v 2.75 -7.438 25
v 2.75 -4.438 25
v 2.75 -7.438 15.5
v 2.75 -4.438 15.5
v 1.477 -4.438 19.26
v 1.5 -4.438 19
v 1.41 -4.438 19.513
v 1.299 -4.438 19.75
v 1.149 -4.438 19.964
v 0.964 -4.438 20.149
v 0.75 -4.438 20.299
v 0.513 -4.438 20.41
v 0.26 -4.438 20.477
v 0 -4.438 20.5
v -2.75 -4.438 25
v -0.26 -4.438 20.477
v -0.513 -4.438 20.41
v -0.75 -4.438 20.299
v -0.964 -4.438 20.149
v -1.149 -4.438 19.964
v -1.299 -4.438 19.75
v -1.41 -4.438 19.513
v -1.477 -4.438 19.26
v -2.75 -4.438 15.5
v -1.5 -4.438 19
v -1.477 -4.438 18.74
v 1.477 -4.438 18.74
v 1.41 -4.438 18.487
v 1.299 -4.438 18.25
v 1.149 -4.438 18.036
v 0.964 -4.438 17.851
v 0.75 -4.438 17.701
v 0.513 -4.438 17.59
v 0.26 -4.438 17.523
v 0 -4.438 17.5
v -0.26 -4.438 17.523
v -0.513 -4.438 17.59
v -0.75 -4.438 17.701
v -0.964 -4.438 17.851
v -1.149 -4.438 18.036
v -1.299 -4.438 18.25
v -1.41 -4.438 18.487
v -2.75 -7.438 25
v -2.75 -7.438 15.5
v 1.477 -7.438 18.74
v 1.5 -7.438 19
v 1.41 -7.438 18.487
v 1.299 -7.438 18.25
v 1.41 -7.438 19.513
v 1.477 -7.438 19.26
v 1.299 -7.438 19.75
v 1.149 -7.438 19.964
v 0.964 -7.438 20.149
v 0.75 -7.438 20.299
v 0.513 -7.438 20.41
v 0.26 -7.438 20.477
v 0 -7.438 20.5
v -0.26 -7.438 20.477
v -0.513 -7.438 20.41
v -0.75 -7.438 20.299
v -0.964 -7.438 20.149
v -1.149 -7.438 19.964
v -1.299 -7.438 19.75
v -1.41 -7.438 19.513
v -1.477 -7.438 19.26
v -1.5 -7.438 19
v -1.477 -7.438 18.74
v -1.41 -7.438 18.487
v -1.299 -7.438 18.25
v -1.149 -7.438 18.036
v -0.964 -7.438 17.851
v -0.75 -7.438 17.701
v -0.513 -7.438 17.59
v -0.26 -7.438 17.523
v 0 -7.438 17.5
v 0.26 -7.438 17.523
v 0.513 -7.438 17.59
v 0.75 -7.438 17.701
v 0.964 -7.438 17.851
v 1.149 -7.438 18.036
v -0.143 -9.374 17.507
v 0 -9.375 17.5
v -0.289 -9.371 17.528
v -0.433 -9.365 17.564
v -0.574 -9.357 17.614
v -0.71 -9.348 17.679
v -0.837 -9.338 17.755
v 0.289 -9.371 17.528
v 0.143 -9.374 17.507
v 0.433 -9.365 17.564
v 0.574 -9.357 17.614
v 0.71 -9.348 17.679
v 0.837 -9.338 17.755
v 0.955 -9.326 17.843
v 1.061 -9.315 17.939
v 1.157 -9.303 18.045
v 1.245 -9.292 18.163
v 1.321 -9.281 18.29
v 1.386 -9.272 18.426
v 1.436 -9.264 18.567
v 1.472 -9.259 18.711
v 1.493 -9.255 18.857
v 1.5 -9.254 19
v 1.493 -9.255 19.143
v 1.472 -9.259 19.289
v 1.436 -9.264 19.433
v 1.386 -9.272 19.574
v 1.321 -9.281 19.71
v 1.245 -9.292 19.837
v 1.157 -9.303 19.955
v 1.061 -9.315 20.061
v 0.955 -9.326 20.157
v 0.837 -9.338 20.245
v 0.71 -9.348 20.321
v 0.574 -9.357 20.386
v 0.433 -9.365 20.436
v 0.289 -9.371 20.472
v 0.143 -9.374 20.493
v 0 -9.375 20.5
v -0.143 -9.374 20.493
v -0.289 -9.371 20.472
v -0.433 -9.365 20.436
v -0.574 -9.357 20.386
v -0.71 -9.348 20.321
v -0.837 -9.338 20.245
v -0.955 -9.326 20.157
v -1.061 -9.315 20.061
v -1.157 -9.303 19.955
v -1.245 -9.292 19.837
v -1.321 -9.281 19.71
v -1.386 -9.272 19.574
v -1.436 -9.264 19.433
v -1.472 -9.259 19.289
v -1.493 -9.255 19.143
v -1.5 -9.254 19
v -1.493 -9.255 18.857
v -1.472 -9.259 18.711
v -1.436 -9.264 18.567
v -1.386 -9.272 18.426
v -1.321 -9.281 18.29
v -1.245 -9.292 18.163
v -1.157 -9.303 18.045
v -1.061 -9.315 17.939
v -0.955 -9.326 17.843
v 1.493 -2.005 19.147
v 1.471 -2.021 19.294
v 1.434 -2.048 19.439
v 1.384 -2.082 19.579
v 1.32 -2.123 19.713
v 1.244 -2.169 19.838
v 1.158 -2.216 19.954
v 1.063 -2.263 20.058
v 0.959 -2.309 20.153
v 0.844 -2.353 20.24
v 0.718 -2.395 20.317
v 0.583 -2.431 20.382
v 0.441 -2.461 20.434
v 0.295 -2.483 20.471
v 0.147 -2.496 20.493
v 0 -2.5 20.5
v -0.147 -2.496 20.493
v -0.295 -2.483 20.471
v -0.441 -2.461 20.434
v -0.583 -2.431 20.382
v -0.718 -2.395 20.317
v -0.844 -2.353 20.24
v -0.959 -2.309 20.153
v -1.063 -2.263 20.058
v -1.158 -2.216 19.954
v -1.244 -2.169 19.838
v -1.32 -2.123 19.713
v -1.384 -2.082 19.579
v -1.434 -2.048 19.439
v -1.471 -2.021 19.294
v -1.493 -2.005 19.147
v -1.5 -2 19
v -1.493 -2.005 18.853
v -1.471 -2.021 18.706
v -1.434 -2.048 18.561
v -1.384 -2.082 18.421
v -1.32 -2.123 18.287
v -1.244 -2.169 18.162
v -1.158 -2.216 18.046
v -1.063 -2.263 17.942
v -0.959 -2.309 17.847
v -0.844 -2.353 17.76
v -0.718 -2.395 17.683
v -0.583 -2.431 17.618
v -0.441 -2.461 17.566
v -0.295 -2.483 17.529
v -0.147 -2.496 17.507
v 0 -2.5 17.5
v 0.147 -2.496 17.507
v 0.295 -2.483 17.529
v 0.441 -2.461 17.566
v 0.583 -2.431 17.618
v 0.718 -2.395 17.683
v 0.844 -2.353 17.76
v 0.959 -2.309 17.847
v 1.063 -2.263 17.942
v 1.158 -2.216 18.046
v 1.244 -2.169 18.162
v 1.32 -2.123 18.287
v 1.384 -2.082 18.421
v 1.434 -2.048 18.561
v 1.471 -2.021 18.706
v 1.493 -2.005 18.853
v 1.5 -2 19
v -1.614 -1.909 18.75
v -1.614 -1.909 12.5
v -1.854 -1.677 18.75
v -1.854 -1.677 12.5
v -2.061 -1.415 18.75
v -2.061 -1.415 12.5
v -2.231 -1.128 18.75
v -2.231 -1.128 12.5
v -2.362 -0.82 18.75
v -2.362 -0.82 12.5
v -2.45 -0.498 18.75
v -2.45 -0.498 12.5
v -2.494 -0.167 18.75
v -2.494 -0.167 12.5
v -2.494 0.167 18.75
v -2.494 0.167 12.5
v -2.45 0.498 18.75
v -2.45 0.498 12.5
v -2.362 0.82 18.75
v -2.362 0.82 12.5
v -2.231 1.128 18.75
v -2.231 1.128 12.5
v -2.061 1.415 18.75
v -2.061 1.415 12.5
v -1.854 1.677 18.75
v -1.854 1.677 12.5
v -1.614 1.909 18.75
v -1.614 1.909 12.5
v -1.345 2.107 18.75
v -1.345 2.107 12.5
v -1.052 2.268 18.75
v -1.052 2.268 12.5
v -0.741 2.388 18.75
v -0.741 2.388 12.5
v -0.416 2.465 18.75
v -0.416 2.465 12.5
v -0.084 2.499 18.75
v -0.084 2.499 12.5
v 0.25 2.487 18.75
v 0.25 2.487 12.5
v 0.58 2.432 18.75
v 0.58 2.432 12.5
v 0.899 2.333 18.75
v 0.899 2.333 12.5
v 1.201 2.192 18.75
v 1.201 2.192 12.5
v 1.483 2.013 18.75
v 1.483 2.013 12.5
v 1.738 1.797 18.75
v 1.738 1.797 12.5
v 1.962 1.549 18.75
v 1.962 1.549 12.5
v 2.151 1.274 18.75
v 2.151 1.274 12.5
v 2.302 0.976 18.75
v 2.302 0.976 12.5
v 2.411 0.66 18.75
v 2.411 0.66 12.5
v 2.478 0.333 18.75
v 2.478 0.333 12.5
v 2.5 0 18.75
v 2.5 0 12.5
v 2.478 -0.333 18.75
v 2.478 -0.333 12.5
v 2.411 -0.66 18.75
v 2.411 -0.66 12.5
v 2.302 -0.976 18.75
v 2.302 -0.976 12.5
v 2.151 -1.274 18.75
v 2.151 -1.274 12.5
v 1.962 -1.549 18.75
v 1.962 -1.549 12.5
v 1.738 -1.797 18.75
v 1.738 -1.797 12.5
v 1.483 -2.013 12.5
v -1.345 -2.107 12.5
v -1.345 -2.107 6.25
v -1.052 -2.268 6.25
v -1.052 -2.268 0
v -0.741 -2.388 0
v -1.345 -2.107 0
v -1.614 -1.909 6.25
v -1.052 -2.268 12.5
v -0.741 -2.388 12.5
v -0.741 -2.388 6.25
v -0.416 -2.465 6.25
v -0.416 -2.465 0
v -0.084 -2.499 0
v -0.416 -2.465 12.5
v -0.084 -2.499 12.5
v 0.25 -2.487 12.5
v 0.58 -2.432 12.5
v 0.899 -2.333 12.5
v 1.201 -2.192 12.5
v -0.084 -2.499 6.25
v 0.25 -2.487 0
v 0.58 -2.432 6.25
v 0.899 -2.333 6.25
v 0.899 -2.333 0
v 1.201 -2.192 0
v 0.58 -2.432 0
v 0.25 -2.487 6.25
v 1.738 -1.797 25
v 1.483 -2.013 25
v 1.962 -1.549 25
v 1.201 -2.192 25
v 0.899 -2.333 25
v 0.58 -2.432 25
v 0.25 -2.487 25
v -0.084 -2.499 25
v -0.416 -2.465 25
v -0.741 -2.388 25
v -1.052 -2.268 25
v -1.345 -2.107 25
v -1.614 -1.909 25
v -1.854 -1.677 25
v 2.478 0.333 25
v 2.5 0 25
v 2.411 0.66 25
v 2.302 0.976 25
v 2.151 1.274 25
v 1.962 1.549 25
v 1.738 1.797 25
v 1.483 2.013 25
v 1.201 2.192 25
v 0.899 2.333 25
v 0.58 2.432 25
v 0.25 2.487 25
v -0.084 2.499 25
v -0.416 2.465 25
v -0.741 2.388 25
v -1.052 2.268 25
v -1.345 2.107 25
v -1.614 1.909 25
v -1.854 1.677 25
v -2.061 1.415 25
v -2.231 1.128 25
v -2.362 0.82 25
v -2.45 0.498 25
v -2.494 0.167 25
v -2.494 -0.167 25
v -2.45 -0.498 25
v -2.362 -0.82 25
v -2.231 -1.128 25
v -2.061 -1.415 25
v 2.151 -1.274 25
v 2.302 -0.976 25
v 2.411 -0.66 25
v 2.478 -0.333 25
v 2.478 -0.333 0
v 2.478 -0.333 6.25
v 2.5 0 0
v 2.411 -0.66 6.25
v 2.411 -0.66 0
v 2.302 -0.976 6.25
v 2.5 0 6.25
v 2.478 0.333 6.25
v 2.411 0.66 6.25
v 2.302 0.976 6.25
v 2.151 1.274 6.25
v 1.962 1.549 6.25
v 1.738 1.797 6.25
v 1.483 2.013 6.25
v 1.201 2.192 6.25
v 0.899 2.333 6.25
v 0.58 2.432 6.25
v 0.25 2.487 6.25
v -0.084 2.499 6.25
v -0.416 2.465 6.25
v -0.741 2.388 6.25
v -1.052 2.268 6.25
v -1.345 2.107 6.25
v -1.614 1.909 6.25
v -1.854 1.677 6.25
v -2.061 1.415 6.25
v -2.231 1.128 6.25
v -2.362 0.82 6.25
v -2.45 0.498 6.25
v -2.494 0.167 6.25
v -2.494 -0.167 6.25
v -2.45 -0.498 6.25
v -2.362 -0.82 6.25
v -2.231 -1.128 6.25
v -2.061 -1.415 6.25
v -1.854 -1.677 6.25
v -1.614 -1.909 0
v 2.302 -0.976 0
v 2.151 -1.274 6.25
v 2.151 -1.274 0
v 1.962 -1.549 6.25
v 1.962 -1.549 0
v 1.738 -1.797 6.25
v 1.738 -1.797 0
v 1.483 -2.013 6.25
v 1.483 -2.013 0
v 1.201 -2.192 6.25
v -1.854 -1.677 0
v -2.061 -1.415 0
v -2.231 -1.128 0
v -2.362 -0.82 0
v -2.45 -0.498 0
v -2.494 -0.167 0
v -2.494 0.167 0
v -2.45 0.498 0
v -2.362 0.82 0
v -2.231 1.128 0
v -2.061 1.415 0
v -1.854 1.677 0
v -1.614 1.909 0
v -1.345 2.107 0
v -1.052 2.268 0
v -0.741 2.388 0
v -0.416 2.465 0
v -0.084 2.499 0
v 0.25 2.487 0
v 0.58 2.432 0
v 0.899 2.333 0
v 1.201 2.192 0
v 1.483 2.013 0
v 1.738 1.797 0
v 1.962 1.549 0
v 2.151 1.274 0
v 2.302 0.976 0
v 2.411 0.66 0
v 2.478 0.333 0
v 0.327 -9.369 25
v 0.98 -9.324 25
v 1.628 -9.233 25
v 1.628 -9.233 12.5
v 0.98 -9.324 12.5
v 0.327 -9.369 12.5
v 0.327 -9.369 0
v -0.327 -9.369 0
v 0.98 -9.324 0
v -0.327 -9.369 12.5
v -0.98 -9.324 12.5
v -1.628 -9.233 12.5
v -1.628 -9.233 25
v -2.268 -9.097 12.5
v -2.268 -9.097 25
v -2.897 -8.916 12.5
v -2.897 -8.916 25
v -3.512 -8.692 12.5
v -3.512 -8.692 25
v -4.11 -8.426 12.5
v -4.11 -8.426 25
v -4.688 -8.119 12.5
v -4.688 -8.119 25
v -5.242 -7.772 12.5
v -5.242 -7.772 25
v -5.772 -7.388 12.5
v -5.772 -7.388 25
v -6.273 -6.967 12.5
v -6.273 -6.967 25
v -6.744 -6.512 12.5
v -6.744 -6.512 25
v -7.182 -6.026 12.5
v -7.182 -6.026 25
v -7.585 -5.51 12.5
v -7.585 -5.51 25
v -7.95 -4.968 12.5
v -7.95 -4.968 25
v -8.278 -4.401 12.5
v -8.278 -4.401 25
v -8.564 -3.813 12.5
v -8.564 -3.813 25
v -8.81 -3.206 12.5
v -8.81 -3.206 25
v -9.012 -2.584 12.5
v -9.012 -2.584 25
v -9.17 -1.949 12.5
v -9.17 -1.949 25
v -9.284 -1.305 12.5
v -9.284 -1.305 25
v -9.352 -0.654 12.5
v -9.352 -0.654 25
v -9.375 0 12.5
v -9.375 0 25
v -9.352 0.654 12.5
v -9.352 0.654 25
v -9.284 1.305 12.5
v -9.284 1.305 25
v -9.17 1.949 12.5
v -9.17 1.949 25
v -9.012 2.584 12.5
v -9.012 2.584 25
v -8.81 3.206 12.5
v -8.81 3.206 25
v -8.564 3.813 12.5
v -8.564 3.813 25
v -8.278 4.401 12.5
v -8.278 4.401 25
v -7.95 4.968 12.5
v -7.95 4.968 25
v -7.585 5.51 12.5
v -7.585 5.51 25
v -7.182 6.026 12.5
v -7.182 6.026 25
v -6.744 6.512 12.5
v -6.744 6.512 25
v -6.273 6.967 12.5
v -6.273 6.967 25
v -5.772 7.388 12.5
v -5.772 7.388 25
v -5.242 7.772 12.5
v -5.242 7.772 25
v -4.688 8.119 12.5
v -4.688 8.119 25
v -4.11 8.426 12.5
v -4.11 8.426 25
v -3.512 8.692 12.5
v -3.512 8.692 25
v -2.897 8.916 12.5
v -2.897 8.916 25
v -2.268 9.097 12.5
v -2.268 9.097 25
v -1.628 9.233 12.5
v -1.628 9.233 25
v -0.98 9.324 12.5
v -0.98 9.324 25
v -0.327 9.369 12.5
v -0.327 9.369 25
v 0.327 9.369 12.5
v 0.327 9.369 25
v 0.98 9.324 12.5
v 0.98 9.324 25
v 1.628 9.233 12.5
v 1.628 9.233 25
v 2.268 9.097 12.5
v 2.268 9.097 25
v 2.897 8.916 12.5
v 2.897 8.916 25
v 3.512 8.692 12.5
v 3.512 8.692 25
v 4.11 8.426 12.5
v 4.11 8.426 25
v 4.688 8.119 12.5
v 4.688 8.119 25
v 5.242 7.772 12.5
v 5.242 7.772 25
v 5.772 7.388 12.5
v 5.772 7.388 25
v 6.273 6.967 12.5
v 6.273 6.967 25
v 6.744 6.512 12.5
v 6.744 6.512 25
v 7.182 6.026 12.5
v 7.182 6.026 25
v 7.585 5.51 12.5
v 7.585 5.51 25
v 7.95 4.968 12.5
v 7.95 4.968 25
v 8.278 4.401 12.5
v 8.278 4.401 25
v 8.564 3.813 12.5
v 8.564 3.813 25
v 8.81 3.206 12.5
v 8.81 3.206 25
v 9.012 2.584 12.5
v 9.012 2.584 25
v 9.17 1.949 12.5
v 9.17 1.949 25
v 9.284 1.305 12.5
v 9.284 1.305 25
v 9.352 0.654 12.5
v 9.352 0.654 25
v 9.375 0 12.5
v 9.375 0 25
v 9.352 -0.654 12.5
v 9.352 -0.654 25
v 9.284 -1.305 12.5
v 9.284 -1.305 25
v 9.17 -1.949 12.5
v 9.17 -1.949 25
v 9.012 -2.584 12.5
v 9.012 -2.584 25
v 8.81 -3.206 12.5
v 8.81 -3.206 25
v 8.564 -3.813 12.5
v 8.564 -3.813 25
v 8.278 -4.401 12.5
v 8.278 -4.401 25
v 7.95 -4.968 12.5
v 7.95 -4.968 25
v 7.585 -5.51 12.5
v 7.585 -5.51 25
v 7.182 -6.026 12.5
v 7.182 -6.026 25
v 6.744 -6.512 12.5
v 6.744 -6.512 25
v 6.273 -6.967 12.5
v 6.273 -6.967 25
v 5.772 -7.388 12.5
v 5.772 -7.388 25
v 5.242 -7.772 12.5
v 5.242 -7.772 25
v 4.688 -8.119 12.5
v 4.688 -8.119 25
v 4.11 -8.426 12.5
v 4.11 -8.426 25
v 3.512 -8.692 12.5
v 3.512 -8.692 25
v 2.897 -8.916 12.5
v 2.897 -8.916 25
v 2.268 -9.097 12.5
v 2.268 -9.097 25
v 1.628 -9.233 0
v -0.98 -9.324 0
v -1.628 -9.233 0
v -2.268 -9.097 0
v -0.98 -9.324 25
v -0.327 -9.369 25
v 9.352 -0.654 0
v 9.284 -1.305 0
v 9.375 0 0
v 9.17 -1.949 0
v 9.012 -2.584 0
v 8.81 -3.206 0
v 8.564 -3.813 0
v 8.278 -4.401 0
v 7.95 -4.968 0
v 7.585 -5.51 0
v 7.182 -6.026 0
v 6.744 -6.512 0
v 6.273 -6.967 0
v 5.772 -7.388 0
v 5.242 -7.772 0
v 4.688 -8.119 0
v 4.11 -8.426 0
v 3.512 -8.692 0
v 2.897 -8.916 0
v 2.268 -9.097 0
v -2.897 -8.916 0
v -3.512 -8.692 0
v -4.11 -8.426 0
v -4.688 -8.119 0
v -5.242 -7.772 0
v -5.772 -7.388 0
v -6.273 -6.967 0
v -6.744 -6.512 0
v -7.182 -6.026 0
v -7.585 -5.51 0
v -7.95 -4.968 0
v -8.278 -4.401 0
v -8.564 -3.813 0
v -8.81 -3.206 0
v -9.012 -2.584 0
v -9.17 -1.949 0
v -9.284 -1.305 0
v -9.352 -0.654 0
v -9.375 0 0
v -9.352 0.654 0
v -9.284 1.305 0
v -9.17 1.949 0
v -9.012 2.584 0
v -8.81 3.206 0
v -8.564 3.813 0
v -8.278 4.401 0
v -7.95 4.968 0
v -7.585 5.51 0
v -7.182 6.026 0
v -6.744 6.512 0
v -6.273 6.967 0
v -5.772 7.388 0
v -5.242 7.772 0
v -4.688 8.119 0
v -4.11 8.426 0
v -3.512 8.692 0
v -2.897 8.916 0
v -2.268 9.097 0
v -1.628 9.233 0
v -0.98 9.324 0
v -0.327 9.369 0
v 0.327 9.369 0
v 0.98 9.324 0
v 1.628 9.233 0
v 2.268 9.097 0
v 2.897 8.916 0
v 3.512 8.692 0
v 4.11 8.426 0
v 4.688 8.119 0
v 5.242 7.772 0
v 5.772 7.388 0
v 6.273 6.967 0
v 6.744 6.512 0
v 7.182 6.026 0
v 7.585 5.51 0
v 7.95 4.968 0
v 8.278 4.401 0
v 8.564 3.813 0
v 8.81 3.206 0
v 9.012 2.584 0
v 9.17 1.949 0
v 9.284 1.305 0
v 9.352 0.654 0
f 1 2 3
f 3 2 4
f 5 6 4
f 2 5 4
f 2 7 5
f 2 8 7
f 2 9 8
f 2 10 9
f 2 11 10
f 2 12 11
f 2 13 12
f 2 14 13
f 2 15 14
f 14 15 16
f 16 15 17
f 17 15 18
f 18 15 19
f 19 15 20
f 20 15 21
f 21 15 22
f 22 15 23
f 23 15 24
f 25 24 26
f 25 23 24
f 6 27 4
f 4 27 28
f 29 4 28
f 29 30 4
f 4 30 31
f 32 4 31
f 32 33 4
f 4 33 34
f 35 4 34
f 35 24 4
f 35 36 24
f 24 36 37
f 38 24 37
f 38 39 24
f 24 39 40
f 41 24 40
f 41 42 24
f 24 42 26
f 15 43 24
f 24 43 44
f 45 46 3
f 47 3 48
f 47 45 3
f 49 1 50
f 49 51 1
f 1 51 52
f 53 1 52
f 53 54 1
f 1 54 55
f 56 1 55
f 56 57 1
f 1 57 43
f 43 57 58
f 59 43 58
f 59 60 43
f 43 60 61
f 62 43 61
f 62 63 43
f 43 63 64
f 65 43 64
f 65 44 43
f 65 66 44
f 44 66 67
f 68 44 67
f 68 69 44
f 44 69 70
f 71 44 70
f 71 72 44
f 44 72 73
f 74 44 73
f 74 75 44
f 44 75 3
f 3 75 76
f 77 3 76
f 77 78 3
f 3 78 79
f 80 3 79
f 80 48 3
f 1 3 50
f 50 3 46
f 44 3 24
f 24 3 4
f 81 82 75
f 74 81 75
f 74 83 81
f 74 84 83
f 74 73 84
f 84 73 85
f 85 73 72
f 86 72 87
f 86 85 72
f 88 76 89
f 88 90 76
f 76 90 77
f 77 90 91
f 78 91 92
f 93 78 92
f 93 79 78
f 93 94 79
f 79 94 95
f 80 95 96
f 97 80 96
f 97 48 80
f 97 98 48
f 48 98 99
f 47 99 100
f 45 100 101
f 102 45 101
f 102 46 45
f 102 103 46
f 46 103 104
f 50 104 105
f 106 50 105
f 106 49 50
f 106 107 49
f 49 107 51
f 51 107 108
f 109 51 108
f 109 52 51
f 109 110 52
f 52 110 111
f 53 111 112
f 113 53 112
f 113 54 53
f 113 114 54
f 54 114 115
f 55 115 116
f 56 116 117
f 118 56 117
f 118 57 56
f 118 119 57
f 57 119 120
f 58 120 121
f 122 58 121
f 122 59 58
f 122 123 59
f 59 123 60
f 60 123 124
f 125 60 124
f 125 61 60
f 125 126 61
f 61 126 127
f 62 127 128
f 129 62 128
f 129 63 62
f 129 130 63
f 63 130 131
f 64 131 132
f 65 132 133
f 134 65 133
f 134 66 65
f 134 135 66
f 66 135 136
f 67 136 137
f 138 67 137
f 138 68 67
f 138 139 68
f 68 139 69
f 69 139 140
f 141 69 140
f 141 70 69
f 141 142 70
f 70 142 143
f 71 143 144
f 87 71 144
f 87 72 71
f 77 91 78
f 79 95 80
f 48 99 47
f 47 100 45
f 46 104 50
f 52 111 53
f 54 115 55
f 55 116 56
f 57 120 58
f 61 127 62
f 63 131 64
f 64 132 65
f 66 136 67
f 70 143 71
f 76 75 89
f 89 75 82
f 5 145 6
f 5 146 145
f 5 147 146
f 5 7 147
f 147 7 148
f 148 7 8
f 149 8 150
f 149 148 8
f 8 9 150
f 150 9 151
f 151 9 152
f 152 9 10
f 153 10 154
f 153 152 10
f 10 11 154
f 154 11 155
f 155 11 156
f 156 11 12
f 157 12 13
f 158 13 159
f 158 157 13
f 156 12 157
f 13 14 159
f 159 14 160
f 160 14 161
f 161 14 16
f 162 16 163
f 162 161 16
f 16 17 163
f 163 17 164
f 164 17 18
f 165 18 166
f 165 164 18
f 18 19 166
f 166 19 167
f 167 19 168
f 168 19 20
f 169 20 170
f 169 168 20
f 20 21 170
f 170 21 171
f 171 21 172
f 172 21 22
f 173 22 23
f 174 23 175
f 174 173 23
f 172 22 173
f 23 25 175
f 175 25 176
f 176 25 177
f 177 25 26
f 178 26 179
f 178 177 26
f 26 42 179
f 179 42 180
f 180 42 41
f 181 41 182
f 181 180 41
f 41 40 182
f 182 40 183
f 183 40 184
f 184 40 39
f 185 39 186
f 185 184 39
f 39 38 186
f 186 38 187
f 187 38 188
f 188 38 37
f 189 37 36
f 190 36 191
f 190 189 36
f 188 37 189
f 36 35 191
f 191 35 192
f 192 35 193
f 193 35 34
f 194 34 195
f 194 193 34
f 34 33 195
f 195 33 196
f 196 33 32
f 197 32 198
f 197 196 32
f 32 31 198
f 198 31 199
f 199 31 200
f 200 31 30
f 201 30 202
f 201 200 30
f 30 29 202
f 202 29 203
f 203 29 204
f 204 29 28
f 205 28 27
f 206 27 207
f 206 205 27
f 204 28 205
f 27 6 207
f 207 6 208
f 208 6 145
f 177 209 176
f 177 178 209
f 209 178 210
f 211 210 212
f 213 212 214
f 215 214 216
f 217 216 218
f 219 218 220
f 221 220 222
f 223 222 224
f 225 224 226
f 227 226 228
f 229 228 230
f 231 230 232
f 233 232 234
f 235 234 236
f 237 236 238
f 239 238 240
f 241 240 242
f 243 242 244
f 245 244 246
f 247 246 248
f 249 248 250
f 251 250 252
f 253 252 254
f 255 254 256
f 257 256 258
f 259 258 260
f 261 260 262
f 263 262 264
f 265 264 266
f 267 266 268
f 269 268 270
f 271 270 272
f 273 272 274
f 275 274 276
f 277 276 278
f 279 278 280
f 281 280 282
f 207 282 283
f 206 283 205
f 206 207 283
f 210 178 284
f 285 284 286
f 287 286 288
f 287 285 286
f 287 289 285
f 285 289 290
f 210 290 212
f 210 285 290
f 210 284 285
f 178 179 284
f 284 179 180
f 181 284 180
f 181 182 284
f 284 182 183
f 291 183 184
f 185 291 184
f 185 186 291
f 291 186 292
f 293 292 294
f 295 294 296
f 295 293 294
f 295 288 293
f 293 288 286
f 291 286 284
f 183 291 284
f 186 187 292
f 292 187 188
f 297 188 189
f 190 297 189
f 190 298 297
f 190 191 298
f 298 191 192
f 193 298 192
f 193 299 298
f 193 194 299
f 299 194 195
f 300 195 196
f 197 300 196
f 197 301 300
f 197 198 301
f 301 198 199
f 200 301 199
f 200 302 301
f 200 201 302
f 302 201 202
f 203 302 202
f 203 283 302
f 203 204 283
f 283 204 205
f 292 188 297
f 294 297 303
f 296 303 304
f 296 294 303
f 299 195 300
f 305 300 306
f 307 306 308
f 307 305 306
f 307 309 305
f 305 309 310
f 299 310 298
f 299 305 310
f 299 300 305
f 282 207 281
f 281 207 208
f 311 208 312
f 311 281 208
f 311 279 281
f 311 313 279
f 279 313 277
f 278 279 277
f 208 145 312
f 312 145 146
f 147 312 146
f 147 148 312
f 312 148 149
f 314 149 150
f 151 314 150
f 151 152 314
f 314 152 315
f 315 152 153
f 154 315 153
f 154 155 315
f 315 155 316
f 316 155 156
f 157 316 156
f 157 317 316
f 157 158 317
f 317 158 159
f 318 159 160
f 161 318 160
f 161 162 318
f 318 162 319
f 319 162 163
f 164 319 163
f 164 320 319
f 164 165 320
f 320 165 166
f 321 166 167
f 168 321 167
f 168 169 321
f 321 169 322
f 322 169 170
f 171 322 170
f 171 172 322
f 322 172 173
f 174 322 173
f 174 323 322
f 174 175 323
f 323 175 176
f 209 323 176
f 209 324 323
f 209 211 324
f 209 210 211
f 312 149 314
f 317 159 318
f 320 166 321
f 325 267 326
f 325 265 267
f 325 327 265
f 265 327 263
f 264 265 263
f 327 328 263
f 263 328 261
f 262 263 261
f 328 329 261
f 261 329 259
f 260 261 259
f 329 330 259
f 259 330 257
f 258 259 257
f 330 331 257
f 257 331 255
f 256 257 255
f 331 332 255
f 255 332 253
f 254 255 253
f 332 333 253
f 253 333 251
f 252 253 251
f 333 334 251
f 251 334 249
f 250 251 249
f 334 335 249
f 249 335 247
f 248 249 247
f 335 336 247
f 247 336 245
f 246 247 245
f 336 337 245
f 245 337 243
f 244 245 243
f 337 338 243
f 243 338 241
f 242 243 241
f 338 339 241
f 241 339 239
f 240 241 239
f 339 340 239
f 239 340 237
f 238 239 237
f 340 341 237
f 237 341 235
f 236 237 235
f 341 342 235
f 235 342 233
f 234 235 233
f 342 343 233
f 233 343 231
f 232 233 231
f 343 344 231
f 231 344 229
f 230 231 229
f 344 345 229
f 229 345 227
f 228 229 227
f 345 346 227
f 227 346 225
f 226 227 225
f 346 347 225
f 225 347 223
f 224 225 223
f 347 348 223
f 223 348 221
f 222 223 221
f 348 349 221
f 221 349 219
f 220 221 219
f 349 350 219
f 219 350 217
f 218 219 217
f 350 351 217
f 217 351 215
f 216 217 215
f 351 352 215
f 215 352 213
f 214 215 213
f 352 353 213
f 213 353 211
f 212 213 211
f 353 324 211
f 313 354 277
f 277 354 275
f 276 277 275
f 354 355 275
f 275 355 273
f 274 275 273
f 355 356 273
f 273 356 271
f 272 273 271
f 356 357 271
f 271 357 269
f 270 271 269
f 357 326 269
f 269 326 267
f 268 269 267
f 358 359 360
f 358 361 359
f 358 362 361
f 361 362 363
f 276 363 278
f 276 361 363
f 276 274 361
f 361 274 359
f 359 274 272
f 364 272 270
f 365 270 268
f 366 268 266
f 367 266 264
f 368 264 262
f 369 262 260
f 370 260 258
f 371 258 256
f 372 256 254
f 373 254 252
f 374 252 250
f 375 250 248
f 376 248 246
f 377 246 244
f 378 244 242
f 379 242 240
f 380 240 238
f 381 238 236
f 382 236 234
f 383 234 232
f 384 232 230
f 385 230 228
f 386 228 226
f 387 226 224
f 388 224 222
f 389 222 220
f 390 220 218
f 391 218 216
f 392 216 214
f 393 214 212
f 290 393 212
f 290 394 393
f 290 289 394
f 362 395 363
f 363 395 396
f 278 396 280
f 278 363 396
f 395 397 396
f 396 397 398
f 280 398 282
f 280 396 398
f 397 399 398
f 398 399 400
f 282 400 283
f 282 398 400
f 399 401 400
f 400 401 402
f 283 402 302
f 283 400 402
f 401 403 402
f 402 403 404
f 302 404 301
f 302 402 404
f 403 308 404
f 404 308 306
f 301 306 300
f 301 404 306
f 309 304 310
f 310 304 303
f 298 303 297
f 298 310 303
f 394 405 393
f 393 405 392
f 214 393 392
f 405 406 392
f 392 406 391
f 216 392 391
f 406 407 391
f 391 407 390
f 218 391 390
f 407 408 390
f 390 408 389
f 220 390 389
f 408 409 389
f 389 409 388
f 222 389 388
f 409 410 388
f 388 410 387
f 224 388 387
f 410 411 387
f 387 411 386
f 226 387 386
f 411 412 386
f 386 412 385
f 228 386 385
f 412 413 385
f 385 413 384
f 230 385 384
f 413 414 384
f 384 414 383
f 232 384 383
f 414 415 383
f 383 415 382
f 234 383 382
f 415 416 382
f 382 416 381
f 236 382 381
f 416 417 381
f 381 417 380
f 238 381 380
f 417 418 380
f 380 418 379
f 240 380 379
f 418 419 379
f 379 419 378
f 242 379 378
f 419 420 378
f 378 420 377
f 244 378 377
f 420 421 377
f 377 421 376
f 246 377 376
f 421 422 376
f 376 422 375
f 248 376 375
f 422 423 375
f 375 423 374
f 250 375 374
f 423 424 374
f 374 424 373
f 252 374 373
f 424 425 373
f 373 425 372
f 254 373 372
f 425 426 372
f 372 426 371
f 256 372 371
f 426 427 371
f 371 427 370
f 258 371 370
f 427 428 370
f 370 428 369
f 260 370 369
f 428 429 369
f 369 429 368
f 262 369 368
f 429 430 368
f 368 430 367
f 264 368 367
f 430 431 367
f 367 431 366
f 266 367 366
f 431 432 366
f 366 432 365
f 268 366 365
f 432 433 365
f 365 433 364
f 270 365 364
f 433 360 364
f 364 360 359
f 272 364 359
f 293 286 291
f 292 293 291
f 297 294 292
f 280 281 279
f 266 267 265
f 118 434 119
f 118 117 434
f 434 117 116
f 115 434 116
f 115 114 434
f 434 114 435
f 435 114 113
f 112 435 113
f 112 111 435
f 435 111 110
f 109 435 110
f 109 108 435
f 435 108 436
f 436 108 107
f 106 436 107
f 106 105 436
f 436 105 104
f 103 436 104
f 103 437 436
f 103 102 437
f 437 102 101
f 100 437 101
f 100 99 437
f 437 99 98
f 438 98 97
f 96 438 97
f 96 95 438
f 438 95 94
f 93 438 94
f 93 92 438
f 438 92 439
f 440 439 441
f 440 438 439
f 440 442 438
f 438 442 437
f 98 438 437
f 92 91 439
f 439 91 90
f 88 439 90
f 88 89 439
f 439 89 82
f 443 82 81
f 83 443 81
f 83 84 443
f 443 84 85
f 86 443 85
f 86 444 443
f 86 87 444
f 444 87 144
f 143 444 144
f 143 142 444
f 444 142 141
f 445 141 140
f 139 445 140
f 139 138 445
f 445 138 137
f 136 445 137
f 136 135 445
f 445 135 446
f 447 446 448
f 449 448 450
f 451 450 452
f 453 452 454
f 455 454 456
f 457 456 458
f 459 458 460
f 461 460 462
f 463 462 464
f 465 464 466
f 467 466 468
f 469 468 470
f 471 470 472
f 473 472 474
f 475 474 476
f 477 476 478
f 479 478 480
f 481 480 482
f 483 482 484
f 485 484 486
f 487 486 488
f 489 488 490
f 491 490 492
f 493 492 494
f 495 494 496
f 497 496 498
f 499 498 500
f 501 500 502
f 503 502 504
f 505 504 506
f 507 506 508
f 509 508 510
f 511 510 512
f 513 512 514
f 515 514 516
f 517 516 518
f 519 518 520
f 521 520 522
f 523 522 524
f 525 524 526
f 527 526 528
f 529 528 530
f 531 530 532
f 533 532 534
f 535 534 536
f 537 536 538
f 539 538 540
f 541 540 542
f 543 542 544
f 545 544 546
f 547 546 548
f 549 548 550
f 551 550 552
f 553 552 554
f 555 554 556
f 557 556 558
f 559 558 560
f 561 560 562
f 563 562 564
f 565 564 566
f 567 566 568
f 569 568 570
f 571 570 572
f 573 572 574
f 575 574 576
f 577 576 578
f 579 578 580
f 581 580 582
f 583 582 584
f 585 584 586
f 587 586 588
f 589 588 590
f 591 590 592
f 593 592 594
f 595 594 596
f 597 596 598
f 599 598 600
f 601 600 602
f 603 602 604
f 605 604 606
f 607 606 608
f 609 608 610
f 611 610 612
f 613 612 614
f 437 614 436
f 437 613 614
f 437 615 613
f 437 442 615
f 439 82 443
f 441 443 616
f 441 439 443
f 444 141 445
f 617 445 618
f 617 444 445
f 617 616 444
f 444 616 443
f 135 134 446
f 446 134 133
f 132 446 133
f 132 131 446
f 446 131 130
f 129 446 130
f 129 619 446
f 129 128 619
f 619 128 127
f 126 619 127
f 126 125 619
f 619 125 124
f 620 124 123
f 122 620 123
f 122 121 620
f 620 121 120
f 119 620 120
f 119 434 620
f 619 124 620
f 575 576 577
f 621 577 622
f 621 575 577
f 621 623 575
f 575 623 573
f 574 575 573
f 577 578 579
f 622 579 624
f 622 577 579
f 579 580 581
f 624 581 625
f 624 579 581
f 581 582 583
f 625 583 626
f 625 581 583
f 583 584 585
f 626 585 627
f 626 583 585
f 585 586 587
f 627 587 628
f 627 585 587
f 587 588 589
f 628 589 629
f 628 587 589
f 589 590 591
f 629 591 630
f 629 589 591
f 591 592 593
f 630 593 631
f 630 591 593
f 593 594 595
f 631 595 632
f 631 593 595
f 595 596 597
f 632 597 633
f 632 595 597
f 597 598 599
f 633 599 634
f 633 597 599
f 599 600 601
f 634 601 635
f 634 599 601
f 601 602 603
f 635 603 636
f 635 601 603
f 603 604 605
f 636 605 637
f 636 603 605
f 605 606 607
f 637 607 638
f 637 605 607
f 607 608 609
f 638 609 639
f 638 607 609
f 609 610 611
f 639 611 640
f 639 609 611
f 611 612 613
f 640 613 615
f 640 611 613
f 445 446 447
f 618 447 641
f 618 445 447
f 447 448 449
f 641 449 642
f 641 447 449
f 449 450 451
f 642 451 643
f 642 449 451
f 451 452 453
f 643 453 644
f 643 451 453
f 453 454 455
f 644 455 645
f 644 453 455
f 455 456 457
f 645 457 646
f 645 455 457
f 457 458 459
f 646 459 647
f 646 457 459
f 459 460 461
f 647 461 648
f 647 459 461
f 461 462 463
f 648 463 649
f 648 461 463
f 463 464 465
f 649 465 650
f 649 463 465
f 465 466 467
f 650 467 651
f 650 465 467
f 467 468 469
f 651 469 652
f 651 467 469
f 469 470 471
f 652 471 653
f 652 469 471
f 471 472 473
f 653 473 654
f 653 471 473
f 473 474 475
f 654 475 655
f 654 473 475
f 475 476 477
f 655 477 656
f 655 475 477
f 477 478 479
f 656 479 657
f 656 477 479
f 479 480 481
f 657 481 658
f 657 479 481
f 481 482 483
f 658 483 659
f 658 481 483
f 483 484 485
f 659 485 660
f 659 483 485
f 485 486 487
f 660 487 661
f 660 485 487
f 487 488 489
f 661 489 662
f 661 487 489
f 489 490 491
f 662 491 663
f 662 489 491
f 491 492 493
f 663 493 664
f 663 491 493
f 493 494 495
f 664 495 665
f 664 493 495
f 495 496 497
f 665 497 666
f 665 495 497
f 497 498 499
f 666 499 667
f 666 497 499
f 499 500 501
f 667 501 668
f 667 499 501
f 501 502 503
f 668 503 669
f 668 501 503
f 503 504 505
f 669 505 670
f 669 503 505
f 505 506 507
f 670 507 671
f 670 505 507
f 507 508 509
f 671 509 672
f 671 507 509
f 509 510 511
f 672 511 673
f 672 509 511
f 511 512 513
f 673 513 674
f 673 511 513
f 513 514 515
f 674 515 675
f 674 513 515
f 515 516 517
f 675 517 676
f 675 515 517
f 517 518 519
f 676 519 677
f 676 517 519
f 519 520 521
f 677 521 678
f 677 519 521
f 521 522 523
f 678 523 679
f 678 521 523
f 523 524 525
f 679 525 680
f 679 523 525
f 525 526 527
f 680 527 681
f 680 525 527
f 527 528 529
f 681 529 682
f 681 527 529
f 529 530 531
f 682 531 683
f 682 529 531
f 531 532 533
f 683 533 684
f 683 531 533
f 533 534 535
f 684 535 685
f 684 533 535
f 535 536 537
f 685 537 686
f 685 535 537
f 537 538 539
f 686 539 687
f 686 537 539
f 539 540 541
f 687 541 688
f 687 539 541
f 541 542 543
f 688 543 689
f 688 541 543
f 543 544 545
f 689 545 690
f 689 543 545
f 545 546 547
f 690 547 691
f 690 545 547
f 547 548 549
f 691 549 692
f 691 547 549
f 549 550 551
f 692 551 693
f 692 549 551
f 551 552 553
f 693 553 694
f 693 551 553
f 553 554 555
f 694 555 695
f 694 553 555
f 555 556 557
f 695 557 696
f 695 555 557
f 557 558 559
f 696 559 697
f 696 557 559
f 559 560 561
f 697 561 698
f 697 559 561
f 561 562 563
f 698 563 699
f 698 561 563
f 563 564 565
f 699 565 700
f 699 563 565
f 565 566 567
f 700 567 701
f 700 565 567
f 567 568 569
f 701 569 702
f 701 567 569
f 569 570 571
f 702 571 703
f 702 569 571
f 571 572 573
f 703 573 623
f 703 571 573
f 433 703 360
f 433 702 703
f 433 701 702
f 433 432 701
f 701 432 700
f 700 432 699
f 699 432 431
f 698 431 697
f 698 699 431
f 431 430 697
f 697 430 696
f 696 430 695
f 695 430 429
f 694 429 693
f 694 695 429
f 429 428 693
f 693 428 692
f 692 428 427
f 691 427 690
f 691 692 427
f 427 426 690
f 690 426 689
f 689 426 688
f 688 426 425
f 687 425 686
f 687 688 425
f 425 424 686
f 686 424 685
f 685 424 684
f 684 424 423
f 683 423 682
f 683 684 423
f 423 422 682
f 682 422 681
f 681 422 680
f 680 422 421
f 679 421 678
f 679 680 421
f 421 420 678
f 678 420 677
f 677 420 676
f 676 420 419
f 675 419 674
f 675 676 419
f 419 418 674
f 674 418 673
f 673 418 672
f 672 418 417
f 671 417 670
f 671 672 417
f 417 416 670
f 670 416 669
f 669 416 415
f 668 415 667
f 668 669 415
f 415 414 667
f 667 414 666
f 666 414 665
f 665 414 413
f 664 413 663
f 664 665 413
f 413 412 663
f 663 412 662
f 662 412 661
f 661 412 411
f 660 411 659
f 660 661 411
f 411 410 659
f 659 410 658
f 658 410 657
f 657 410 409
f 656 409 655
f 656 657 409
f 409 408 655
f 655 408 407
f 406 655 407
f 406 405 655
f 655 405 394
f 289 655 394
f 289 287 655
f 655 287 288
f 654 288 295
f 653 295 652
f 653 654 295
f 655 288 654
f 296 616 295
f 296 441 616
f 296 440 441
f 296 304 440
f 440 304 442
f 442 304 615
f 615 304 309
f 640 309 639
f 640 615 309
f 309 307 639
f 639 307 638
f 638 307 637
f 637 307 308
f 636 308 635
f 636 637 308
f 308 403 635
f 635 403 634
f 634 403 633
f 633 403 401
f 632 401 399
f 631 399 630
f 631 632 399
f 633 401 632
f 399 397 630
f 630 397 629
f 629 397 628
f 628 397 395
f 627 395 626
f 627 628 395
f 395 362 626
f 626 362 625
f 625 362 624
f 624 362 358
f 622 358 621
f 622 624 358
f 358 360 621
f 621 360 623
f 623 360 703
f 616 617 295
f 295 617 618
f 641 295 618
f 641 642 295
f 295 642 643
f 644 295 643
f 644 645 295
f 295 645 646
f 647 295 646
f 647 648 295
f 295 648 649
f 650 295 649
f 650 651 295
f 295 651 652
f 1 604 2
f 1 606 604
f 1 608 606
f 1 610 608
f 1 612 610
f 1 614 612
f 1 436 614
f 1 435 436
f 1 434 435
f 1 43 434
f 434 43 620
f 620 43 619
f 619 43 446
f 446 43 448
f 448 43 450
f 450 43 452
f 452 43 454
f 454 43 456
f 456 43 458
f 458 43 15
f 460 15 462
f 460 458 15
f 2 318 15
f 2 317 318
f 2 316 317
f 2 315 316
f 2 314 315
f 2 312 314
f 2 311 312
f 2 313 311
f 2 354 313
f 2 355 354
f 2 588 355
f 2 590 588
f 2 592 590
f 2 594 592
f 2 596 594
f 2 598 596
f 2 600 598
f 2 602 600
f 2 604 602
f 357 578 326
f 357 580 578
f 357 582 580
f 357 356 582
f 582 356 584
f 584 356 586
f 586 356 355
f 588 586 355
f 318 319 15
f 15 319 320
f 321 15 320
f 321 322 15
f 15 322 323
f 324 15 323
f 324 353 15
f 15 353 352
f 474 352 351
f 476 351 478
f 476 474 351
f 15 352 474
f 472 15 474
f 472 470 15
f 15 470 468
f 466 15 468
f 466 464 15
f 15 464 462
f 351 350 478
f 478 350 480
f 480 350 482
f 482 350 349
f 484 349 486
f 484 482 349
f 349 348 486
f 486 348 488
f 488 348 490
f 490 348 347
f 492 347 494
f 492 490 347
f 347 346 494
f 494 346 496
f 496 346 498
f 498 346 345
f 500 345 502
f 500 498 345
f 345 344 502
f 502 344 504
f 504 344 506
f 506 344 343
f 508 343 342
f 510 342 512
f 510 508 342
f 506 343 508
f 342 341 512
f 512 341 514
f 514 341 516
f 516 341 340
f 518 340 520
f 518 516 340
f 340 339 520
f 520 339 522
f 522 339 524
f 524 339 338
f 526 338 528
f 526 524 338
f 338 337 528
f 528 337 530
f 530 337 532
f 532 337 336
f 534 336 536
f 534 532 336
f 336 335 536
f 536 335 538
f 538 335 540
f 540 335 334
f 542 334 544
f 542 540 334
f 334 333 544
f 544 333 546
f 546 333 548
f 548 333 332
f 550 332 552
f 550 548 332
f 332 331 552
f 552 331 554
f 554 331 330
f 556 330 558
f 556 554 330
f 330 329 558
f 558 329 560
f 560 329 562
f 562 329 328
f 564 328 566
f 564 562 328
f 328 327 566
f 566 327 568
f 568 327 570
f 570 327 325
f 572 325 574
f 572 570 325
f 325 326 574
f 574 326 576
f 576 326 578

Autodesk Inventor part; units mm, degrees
ref_plane "YZ Plane" through (0, 0, 0) normal (1, 0, 0) x (0, 1, 0)
ref_plane "XZ Plane" through (0, 0, 0) normal (0, 1, 0) x (-1, 0, 0)
sketch "Sketch1" plane through (0, 0, 0) normal (0, 0, 1) x (1, 0, 0)
  circle A0 centre (0, 0) radius 9.375
  circle A1 centre (0, 0) radius 2.5
  dimension "d0" = 18.75
  dimension "d1" = 5
extrude "Extrusion1" add sketch "Sketch1" along normal blind 25
sketch "Point of Tangency + Nut" plane through (0, 0, 25) normal (0, 0, 1) x (1, 0, 0)
  circle A0 centre (0, 0) radius 9.375 projected
  line L0 (0, -9.375) -> (0, -2.5) construction
  circle A1 centre (0, 0) radius 2.5 construction
  line L1 (2.75, -7.4375) -> (-2.75, -7.4375)
  line L2 (-2.75, -7.4375) -> (-2.75, -4.4375)
  line L3 (-2.75, -4.4375) -> (2.75, -4.4375)
  line L4 (2.75, -4.4375) -> (2.75, -7.4375)
  line L5 (2.75, -7.4375) -> (-2.75, -4.4375) construction
  line L6 (-2.75, -7.4375) -> (2.75, -4.4375) construction
  point P0 (0, -5.9375)
  dimension "d8" = 5.5
  dimension "d9" = 3
ref_plane "Work Plane1" through (0, -9.375, 25) normal (0, -1, 0) x (1, 0, 0)
sketch "Sketch3" plane through (0, -9.375, 25) normal (0, -1, 0) x (1, 0, 0)
  line L0 (9.375, 0) -> (-9.375, 0) construction
  line L1 (0, 0) -> (0, -6) construction
  circle A0 centre (0, -6) radius 1.5
  point P0 (0, -25)
  dimension "d4" = 6
  dimension "d5" = 3
extrude "LocBolt" cut sketch "Sketch3" against normal blind 8
extrude "LocNut Gap" cut sketch "Point of Tangency + Nut" against normal blind 9.5 contours L1 L2 L3 L4
properties part number "MotorTripodCoupler"
